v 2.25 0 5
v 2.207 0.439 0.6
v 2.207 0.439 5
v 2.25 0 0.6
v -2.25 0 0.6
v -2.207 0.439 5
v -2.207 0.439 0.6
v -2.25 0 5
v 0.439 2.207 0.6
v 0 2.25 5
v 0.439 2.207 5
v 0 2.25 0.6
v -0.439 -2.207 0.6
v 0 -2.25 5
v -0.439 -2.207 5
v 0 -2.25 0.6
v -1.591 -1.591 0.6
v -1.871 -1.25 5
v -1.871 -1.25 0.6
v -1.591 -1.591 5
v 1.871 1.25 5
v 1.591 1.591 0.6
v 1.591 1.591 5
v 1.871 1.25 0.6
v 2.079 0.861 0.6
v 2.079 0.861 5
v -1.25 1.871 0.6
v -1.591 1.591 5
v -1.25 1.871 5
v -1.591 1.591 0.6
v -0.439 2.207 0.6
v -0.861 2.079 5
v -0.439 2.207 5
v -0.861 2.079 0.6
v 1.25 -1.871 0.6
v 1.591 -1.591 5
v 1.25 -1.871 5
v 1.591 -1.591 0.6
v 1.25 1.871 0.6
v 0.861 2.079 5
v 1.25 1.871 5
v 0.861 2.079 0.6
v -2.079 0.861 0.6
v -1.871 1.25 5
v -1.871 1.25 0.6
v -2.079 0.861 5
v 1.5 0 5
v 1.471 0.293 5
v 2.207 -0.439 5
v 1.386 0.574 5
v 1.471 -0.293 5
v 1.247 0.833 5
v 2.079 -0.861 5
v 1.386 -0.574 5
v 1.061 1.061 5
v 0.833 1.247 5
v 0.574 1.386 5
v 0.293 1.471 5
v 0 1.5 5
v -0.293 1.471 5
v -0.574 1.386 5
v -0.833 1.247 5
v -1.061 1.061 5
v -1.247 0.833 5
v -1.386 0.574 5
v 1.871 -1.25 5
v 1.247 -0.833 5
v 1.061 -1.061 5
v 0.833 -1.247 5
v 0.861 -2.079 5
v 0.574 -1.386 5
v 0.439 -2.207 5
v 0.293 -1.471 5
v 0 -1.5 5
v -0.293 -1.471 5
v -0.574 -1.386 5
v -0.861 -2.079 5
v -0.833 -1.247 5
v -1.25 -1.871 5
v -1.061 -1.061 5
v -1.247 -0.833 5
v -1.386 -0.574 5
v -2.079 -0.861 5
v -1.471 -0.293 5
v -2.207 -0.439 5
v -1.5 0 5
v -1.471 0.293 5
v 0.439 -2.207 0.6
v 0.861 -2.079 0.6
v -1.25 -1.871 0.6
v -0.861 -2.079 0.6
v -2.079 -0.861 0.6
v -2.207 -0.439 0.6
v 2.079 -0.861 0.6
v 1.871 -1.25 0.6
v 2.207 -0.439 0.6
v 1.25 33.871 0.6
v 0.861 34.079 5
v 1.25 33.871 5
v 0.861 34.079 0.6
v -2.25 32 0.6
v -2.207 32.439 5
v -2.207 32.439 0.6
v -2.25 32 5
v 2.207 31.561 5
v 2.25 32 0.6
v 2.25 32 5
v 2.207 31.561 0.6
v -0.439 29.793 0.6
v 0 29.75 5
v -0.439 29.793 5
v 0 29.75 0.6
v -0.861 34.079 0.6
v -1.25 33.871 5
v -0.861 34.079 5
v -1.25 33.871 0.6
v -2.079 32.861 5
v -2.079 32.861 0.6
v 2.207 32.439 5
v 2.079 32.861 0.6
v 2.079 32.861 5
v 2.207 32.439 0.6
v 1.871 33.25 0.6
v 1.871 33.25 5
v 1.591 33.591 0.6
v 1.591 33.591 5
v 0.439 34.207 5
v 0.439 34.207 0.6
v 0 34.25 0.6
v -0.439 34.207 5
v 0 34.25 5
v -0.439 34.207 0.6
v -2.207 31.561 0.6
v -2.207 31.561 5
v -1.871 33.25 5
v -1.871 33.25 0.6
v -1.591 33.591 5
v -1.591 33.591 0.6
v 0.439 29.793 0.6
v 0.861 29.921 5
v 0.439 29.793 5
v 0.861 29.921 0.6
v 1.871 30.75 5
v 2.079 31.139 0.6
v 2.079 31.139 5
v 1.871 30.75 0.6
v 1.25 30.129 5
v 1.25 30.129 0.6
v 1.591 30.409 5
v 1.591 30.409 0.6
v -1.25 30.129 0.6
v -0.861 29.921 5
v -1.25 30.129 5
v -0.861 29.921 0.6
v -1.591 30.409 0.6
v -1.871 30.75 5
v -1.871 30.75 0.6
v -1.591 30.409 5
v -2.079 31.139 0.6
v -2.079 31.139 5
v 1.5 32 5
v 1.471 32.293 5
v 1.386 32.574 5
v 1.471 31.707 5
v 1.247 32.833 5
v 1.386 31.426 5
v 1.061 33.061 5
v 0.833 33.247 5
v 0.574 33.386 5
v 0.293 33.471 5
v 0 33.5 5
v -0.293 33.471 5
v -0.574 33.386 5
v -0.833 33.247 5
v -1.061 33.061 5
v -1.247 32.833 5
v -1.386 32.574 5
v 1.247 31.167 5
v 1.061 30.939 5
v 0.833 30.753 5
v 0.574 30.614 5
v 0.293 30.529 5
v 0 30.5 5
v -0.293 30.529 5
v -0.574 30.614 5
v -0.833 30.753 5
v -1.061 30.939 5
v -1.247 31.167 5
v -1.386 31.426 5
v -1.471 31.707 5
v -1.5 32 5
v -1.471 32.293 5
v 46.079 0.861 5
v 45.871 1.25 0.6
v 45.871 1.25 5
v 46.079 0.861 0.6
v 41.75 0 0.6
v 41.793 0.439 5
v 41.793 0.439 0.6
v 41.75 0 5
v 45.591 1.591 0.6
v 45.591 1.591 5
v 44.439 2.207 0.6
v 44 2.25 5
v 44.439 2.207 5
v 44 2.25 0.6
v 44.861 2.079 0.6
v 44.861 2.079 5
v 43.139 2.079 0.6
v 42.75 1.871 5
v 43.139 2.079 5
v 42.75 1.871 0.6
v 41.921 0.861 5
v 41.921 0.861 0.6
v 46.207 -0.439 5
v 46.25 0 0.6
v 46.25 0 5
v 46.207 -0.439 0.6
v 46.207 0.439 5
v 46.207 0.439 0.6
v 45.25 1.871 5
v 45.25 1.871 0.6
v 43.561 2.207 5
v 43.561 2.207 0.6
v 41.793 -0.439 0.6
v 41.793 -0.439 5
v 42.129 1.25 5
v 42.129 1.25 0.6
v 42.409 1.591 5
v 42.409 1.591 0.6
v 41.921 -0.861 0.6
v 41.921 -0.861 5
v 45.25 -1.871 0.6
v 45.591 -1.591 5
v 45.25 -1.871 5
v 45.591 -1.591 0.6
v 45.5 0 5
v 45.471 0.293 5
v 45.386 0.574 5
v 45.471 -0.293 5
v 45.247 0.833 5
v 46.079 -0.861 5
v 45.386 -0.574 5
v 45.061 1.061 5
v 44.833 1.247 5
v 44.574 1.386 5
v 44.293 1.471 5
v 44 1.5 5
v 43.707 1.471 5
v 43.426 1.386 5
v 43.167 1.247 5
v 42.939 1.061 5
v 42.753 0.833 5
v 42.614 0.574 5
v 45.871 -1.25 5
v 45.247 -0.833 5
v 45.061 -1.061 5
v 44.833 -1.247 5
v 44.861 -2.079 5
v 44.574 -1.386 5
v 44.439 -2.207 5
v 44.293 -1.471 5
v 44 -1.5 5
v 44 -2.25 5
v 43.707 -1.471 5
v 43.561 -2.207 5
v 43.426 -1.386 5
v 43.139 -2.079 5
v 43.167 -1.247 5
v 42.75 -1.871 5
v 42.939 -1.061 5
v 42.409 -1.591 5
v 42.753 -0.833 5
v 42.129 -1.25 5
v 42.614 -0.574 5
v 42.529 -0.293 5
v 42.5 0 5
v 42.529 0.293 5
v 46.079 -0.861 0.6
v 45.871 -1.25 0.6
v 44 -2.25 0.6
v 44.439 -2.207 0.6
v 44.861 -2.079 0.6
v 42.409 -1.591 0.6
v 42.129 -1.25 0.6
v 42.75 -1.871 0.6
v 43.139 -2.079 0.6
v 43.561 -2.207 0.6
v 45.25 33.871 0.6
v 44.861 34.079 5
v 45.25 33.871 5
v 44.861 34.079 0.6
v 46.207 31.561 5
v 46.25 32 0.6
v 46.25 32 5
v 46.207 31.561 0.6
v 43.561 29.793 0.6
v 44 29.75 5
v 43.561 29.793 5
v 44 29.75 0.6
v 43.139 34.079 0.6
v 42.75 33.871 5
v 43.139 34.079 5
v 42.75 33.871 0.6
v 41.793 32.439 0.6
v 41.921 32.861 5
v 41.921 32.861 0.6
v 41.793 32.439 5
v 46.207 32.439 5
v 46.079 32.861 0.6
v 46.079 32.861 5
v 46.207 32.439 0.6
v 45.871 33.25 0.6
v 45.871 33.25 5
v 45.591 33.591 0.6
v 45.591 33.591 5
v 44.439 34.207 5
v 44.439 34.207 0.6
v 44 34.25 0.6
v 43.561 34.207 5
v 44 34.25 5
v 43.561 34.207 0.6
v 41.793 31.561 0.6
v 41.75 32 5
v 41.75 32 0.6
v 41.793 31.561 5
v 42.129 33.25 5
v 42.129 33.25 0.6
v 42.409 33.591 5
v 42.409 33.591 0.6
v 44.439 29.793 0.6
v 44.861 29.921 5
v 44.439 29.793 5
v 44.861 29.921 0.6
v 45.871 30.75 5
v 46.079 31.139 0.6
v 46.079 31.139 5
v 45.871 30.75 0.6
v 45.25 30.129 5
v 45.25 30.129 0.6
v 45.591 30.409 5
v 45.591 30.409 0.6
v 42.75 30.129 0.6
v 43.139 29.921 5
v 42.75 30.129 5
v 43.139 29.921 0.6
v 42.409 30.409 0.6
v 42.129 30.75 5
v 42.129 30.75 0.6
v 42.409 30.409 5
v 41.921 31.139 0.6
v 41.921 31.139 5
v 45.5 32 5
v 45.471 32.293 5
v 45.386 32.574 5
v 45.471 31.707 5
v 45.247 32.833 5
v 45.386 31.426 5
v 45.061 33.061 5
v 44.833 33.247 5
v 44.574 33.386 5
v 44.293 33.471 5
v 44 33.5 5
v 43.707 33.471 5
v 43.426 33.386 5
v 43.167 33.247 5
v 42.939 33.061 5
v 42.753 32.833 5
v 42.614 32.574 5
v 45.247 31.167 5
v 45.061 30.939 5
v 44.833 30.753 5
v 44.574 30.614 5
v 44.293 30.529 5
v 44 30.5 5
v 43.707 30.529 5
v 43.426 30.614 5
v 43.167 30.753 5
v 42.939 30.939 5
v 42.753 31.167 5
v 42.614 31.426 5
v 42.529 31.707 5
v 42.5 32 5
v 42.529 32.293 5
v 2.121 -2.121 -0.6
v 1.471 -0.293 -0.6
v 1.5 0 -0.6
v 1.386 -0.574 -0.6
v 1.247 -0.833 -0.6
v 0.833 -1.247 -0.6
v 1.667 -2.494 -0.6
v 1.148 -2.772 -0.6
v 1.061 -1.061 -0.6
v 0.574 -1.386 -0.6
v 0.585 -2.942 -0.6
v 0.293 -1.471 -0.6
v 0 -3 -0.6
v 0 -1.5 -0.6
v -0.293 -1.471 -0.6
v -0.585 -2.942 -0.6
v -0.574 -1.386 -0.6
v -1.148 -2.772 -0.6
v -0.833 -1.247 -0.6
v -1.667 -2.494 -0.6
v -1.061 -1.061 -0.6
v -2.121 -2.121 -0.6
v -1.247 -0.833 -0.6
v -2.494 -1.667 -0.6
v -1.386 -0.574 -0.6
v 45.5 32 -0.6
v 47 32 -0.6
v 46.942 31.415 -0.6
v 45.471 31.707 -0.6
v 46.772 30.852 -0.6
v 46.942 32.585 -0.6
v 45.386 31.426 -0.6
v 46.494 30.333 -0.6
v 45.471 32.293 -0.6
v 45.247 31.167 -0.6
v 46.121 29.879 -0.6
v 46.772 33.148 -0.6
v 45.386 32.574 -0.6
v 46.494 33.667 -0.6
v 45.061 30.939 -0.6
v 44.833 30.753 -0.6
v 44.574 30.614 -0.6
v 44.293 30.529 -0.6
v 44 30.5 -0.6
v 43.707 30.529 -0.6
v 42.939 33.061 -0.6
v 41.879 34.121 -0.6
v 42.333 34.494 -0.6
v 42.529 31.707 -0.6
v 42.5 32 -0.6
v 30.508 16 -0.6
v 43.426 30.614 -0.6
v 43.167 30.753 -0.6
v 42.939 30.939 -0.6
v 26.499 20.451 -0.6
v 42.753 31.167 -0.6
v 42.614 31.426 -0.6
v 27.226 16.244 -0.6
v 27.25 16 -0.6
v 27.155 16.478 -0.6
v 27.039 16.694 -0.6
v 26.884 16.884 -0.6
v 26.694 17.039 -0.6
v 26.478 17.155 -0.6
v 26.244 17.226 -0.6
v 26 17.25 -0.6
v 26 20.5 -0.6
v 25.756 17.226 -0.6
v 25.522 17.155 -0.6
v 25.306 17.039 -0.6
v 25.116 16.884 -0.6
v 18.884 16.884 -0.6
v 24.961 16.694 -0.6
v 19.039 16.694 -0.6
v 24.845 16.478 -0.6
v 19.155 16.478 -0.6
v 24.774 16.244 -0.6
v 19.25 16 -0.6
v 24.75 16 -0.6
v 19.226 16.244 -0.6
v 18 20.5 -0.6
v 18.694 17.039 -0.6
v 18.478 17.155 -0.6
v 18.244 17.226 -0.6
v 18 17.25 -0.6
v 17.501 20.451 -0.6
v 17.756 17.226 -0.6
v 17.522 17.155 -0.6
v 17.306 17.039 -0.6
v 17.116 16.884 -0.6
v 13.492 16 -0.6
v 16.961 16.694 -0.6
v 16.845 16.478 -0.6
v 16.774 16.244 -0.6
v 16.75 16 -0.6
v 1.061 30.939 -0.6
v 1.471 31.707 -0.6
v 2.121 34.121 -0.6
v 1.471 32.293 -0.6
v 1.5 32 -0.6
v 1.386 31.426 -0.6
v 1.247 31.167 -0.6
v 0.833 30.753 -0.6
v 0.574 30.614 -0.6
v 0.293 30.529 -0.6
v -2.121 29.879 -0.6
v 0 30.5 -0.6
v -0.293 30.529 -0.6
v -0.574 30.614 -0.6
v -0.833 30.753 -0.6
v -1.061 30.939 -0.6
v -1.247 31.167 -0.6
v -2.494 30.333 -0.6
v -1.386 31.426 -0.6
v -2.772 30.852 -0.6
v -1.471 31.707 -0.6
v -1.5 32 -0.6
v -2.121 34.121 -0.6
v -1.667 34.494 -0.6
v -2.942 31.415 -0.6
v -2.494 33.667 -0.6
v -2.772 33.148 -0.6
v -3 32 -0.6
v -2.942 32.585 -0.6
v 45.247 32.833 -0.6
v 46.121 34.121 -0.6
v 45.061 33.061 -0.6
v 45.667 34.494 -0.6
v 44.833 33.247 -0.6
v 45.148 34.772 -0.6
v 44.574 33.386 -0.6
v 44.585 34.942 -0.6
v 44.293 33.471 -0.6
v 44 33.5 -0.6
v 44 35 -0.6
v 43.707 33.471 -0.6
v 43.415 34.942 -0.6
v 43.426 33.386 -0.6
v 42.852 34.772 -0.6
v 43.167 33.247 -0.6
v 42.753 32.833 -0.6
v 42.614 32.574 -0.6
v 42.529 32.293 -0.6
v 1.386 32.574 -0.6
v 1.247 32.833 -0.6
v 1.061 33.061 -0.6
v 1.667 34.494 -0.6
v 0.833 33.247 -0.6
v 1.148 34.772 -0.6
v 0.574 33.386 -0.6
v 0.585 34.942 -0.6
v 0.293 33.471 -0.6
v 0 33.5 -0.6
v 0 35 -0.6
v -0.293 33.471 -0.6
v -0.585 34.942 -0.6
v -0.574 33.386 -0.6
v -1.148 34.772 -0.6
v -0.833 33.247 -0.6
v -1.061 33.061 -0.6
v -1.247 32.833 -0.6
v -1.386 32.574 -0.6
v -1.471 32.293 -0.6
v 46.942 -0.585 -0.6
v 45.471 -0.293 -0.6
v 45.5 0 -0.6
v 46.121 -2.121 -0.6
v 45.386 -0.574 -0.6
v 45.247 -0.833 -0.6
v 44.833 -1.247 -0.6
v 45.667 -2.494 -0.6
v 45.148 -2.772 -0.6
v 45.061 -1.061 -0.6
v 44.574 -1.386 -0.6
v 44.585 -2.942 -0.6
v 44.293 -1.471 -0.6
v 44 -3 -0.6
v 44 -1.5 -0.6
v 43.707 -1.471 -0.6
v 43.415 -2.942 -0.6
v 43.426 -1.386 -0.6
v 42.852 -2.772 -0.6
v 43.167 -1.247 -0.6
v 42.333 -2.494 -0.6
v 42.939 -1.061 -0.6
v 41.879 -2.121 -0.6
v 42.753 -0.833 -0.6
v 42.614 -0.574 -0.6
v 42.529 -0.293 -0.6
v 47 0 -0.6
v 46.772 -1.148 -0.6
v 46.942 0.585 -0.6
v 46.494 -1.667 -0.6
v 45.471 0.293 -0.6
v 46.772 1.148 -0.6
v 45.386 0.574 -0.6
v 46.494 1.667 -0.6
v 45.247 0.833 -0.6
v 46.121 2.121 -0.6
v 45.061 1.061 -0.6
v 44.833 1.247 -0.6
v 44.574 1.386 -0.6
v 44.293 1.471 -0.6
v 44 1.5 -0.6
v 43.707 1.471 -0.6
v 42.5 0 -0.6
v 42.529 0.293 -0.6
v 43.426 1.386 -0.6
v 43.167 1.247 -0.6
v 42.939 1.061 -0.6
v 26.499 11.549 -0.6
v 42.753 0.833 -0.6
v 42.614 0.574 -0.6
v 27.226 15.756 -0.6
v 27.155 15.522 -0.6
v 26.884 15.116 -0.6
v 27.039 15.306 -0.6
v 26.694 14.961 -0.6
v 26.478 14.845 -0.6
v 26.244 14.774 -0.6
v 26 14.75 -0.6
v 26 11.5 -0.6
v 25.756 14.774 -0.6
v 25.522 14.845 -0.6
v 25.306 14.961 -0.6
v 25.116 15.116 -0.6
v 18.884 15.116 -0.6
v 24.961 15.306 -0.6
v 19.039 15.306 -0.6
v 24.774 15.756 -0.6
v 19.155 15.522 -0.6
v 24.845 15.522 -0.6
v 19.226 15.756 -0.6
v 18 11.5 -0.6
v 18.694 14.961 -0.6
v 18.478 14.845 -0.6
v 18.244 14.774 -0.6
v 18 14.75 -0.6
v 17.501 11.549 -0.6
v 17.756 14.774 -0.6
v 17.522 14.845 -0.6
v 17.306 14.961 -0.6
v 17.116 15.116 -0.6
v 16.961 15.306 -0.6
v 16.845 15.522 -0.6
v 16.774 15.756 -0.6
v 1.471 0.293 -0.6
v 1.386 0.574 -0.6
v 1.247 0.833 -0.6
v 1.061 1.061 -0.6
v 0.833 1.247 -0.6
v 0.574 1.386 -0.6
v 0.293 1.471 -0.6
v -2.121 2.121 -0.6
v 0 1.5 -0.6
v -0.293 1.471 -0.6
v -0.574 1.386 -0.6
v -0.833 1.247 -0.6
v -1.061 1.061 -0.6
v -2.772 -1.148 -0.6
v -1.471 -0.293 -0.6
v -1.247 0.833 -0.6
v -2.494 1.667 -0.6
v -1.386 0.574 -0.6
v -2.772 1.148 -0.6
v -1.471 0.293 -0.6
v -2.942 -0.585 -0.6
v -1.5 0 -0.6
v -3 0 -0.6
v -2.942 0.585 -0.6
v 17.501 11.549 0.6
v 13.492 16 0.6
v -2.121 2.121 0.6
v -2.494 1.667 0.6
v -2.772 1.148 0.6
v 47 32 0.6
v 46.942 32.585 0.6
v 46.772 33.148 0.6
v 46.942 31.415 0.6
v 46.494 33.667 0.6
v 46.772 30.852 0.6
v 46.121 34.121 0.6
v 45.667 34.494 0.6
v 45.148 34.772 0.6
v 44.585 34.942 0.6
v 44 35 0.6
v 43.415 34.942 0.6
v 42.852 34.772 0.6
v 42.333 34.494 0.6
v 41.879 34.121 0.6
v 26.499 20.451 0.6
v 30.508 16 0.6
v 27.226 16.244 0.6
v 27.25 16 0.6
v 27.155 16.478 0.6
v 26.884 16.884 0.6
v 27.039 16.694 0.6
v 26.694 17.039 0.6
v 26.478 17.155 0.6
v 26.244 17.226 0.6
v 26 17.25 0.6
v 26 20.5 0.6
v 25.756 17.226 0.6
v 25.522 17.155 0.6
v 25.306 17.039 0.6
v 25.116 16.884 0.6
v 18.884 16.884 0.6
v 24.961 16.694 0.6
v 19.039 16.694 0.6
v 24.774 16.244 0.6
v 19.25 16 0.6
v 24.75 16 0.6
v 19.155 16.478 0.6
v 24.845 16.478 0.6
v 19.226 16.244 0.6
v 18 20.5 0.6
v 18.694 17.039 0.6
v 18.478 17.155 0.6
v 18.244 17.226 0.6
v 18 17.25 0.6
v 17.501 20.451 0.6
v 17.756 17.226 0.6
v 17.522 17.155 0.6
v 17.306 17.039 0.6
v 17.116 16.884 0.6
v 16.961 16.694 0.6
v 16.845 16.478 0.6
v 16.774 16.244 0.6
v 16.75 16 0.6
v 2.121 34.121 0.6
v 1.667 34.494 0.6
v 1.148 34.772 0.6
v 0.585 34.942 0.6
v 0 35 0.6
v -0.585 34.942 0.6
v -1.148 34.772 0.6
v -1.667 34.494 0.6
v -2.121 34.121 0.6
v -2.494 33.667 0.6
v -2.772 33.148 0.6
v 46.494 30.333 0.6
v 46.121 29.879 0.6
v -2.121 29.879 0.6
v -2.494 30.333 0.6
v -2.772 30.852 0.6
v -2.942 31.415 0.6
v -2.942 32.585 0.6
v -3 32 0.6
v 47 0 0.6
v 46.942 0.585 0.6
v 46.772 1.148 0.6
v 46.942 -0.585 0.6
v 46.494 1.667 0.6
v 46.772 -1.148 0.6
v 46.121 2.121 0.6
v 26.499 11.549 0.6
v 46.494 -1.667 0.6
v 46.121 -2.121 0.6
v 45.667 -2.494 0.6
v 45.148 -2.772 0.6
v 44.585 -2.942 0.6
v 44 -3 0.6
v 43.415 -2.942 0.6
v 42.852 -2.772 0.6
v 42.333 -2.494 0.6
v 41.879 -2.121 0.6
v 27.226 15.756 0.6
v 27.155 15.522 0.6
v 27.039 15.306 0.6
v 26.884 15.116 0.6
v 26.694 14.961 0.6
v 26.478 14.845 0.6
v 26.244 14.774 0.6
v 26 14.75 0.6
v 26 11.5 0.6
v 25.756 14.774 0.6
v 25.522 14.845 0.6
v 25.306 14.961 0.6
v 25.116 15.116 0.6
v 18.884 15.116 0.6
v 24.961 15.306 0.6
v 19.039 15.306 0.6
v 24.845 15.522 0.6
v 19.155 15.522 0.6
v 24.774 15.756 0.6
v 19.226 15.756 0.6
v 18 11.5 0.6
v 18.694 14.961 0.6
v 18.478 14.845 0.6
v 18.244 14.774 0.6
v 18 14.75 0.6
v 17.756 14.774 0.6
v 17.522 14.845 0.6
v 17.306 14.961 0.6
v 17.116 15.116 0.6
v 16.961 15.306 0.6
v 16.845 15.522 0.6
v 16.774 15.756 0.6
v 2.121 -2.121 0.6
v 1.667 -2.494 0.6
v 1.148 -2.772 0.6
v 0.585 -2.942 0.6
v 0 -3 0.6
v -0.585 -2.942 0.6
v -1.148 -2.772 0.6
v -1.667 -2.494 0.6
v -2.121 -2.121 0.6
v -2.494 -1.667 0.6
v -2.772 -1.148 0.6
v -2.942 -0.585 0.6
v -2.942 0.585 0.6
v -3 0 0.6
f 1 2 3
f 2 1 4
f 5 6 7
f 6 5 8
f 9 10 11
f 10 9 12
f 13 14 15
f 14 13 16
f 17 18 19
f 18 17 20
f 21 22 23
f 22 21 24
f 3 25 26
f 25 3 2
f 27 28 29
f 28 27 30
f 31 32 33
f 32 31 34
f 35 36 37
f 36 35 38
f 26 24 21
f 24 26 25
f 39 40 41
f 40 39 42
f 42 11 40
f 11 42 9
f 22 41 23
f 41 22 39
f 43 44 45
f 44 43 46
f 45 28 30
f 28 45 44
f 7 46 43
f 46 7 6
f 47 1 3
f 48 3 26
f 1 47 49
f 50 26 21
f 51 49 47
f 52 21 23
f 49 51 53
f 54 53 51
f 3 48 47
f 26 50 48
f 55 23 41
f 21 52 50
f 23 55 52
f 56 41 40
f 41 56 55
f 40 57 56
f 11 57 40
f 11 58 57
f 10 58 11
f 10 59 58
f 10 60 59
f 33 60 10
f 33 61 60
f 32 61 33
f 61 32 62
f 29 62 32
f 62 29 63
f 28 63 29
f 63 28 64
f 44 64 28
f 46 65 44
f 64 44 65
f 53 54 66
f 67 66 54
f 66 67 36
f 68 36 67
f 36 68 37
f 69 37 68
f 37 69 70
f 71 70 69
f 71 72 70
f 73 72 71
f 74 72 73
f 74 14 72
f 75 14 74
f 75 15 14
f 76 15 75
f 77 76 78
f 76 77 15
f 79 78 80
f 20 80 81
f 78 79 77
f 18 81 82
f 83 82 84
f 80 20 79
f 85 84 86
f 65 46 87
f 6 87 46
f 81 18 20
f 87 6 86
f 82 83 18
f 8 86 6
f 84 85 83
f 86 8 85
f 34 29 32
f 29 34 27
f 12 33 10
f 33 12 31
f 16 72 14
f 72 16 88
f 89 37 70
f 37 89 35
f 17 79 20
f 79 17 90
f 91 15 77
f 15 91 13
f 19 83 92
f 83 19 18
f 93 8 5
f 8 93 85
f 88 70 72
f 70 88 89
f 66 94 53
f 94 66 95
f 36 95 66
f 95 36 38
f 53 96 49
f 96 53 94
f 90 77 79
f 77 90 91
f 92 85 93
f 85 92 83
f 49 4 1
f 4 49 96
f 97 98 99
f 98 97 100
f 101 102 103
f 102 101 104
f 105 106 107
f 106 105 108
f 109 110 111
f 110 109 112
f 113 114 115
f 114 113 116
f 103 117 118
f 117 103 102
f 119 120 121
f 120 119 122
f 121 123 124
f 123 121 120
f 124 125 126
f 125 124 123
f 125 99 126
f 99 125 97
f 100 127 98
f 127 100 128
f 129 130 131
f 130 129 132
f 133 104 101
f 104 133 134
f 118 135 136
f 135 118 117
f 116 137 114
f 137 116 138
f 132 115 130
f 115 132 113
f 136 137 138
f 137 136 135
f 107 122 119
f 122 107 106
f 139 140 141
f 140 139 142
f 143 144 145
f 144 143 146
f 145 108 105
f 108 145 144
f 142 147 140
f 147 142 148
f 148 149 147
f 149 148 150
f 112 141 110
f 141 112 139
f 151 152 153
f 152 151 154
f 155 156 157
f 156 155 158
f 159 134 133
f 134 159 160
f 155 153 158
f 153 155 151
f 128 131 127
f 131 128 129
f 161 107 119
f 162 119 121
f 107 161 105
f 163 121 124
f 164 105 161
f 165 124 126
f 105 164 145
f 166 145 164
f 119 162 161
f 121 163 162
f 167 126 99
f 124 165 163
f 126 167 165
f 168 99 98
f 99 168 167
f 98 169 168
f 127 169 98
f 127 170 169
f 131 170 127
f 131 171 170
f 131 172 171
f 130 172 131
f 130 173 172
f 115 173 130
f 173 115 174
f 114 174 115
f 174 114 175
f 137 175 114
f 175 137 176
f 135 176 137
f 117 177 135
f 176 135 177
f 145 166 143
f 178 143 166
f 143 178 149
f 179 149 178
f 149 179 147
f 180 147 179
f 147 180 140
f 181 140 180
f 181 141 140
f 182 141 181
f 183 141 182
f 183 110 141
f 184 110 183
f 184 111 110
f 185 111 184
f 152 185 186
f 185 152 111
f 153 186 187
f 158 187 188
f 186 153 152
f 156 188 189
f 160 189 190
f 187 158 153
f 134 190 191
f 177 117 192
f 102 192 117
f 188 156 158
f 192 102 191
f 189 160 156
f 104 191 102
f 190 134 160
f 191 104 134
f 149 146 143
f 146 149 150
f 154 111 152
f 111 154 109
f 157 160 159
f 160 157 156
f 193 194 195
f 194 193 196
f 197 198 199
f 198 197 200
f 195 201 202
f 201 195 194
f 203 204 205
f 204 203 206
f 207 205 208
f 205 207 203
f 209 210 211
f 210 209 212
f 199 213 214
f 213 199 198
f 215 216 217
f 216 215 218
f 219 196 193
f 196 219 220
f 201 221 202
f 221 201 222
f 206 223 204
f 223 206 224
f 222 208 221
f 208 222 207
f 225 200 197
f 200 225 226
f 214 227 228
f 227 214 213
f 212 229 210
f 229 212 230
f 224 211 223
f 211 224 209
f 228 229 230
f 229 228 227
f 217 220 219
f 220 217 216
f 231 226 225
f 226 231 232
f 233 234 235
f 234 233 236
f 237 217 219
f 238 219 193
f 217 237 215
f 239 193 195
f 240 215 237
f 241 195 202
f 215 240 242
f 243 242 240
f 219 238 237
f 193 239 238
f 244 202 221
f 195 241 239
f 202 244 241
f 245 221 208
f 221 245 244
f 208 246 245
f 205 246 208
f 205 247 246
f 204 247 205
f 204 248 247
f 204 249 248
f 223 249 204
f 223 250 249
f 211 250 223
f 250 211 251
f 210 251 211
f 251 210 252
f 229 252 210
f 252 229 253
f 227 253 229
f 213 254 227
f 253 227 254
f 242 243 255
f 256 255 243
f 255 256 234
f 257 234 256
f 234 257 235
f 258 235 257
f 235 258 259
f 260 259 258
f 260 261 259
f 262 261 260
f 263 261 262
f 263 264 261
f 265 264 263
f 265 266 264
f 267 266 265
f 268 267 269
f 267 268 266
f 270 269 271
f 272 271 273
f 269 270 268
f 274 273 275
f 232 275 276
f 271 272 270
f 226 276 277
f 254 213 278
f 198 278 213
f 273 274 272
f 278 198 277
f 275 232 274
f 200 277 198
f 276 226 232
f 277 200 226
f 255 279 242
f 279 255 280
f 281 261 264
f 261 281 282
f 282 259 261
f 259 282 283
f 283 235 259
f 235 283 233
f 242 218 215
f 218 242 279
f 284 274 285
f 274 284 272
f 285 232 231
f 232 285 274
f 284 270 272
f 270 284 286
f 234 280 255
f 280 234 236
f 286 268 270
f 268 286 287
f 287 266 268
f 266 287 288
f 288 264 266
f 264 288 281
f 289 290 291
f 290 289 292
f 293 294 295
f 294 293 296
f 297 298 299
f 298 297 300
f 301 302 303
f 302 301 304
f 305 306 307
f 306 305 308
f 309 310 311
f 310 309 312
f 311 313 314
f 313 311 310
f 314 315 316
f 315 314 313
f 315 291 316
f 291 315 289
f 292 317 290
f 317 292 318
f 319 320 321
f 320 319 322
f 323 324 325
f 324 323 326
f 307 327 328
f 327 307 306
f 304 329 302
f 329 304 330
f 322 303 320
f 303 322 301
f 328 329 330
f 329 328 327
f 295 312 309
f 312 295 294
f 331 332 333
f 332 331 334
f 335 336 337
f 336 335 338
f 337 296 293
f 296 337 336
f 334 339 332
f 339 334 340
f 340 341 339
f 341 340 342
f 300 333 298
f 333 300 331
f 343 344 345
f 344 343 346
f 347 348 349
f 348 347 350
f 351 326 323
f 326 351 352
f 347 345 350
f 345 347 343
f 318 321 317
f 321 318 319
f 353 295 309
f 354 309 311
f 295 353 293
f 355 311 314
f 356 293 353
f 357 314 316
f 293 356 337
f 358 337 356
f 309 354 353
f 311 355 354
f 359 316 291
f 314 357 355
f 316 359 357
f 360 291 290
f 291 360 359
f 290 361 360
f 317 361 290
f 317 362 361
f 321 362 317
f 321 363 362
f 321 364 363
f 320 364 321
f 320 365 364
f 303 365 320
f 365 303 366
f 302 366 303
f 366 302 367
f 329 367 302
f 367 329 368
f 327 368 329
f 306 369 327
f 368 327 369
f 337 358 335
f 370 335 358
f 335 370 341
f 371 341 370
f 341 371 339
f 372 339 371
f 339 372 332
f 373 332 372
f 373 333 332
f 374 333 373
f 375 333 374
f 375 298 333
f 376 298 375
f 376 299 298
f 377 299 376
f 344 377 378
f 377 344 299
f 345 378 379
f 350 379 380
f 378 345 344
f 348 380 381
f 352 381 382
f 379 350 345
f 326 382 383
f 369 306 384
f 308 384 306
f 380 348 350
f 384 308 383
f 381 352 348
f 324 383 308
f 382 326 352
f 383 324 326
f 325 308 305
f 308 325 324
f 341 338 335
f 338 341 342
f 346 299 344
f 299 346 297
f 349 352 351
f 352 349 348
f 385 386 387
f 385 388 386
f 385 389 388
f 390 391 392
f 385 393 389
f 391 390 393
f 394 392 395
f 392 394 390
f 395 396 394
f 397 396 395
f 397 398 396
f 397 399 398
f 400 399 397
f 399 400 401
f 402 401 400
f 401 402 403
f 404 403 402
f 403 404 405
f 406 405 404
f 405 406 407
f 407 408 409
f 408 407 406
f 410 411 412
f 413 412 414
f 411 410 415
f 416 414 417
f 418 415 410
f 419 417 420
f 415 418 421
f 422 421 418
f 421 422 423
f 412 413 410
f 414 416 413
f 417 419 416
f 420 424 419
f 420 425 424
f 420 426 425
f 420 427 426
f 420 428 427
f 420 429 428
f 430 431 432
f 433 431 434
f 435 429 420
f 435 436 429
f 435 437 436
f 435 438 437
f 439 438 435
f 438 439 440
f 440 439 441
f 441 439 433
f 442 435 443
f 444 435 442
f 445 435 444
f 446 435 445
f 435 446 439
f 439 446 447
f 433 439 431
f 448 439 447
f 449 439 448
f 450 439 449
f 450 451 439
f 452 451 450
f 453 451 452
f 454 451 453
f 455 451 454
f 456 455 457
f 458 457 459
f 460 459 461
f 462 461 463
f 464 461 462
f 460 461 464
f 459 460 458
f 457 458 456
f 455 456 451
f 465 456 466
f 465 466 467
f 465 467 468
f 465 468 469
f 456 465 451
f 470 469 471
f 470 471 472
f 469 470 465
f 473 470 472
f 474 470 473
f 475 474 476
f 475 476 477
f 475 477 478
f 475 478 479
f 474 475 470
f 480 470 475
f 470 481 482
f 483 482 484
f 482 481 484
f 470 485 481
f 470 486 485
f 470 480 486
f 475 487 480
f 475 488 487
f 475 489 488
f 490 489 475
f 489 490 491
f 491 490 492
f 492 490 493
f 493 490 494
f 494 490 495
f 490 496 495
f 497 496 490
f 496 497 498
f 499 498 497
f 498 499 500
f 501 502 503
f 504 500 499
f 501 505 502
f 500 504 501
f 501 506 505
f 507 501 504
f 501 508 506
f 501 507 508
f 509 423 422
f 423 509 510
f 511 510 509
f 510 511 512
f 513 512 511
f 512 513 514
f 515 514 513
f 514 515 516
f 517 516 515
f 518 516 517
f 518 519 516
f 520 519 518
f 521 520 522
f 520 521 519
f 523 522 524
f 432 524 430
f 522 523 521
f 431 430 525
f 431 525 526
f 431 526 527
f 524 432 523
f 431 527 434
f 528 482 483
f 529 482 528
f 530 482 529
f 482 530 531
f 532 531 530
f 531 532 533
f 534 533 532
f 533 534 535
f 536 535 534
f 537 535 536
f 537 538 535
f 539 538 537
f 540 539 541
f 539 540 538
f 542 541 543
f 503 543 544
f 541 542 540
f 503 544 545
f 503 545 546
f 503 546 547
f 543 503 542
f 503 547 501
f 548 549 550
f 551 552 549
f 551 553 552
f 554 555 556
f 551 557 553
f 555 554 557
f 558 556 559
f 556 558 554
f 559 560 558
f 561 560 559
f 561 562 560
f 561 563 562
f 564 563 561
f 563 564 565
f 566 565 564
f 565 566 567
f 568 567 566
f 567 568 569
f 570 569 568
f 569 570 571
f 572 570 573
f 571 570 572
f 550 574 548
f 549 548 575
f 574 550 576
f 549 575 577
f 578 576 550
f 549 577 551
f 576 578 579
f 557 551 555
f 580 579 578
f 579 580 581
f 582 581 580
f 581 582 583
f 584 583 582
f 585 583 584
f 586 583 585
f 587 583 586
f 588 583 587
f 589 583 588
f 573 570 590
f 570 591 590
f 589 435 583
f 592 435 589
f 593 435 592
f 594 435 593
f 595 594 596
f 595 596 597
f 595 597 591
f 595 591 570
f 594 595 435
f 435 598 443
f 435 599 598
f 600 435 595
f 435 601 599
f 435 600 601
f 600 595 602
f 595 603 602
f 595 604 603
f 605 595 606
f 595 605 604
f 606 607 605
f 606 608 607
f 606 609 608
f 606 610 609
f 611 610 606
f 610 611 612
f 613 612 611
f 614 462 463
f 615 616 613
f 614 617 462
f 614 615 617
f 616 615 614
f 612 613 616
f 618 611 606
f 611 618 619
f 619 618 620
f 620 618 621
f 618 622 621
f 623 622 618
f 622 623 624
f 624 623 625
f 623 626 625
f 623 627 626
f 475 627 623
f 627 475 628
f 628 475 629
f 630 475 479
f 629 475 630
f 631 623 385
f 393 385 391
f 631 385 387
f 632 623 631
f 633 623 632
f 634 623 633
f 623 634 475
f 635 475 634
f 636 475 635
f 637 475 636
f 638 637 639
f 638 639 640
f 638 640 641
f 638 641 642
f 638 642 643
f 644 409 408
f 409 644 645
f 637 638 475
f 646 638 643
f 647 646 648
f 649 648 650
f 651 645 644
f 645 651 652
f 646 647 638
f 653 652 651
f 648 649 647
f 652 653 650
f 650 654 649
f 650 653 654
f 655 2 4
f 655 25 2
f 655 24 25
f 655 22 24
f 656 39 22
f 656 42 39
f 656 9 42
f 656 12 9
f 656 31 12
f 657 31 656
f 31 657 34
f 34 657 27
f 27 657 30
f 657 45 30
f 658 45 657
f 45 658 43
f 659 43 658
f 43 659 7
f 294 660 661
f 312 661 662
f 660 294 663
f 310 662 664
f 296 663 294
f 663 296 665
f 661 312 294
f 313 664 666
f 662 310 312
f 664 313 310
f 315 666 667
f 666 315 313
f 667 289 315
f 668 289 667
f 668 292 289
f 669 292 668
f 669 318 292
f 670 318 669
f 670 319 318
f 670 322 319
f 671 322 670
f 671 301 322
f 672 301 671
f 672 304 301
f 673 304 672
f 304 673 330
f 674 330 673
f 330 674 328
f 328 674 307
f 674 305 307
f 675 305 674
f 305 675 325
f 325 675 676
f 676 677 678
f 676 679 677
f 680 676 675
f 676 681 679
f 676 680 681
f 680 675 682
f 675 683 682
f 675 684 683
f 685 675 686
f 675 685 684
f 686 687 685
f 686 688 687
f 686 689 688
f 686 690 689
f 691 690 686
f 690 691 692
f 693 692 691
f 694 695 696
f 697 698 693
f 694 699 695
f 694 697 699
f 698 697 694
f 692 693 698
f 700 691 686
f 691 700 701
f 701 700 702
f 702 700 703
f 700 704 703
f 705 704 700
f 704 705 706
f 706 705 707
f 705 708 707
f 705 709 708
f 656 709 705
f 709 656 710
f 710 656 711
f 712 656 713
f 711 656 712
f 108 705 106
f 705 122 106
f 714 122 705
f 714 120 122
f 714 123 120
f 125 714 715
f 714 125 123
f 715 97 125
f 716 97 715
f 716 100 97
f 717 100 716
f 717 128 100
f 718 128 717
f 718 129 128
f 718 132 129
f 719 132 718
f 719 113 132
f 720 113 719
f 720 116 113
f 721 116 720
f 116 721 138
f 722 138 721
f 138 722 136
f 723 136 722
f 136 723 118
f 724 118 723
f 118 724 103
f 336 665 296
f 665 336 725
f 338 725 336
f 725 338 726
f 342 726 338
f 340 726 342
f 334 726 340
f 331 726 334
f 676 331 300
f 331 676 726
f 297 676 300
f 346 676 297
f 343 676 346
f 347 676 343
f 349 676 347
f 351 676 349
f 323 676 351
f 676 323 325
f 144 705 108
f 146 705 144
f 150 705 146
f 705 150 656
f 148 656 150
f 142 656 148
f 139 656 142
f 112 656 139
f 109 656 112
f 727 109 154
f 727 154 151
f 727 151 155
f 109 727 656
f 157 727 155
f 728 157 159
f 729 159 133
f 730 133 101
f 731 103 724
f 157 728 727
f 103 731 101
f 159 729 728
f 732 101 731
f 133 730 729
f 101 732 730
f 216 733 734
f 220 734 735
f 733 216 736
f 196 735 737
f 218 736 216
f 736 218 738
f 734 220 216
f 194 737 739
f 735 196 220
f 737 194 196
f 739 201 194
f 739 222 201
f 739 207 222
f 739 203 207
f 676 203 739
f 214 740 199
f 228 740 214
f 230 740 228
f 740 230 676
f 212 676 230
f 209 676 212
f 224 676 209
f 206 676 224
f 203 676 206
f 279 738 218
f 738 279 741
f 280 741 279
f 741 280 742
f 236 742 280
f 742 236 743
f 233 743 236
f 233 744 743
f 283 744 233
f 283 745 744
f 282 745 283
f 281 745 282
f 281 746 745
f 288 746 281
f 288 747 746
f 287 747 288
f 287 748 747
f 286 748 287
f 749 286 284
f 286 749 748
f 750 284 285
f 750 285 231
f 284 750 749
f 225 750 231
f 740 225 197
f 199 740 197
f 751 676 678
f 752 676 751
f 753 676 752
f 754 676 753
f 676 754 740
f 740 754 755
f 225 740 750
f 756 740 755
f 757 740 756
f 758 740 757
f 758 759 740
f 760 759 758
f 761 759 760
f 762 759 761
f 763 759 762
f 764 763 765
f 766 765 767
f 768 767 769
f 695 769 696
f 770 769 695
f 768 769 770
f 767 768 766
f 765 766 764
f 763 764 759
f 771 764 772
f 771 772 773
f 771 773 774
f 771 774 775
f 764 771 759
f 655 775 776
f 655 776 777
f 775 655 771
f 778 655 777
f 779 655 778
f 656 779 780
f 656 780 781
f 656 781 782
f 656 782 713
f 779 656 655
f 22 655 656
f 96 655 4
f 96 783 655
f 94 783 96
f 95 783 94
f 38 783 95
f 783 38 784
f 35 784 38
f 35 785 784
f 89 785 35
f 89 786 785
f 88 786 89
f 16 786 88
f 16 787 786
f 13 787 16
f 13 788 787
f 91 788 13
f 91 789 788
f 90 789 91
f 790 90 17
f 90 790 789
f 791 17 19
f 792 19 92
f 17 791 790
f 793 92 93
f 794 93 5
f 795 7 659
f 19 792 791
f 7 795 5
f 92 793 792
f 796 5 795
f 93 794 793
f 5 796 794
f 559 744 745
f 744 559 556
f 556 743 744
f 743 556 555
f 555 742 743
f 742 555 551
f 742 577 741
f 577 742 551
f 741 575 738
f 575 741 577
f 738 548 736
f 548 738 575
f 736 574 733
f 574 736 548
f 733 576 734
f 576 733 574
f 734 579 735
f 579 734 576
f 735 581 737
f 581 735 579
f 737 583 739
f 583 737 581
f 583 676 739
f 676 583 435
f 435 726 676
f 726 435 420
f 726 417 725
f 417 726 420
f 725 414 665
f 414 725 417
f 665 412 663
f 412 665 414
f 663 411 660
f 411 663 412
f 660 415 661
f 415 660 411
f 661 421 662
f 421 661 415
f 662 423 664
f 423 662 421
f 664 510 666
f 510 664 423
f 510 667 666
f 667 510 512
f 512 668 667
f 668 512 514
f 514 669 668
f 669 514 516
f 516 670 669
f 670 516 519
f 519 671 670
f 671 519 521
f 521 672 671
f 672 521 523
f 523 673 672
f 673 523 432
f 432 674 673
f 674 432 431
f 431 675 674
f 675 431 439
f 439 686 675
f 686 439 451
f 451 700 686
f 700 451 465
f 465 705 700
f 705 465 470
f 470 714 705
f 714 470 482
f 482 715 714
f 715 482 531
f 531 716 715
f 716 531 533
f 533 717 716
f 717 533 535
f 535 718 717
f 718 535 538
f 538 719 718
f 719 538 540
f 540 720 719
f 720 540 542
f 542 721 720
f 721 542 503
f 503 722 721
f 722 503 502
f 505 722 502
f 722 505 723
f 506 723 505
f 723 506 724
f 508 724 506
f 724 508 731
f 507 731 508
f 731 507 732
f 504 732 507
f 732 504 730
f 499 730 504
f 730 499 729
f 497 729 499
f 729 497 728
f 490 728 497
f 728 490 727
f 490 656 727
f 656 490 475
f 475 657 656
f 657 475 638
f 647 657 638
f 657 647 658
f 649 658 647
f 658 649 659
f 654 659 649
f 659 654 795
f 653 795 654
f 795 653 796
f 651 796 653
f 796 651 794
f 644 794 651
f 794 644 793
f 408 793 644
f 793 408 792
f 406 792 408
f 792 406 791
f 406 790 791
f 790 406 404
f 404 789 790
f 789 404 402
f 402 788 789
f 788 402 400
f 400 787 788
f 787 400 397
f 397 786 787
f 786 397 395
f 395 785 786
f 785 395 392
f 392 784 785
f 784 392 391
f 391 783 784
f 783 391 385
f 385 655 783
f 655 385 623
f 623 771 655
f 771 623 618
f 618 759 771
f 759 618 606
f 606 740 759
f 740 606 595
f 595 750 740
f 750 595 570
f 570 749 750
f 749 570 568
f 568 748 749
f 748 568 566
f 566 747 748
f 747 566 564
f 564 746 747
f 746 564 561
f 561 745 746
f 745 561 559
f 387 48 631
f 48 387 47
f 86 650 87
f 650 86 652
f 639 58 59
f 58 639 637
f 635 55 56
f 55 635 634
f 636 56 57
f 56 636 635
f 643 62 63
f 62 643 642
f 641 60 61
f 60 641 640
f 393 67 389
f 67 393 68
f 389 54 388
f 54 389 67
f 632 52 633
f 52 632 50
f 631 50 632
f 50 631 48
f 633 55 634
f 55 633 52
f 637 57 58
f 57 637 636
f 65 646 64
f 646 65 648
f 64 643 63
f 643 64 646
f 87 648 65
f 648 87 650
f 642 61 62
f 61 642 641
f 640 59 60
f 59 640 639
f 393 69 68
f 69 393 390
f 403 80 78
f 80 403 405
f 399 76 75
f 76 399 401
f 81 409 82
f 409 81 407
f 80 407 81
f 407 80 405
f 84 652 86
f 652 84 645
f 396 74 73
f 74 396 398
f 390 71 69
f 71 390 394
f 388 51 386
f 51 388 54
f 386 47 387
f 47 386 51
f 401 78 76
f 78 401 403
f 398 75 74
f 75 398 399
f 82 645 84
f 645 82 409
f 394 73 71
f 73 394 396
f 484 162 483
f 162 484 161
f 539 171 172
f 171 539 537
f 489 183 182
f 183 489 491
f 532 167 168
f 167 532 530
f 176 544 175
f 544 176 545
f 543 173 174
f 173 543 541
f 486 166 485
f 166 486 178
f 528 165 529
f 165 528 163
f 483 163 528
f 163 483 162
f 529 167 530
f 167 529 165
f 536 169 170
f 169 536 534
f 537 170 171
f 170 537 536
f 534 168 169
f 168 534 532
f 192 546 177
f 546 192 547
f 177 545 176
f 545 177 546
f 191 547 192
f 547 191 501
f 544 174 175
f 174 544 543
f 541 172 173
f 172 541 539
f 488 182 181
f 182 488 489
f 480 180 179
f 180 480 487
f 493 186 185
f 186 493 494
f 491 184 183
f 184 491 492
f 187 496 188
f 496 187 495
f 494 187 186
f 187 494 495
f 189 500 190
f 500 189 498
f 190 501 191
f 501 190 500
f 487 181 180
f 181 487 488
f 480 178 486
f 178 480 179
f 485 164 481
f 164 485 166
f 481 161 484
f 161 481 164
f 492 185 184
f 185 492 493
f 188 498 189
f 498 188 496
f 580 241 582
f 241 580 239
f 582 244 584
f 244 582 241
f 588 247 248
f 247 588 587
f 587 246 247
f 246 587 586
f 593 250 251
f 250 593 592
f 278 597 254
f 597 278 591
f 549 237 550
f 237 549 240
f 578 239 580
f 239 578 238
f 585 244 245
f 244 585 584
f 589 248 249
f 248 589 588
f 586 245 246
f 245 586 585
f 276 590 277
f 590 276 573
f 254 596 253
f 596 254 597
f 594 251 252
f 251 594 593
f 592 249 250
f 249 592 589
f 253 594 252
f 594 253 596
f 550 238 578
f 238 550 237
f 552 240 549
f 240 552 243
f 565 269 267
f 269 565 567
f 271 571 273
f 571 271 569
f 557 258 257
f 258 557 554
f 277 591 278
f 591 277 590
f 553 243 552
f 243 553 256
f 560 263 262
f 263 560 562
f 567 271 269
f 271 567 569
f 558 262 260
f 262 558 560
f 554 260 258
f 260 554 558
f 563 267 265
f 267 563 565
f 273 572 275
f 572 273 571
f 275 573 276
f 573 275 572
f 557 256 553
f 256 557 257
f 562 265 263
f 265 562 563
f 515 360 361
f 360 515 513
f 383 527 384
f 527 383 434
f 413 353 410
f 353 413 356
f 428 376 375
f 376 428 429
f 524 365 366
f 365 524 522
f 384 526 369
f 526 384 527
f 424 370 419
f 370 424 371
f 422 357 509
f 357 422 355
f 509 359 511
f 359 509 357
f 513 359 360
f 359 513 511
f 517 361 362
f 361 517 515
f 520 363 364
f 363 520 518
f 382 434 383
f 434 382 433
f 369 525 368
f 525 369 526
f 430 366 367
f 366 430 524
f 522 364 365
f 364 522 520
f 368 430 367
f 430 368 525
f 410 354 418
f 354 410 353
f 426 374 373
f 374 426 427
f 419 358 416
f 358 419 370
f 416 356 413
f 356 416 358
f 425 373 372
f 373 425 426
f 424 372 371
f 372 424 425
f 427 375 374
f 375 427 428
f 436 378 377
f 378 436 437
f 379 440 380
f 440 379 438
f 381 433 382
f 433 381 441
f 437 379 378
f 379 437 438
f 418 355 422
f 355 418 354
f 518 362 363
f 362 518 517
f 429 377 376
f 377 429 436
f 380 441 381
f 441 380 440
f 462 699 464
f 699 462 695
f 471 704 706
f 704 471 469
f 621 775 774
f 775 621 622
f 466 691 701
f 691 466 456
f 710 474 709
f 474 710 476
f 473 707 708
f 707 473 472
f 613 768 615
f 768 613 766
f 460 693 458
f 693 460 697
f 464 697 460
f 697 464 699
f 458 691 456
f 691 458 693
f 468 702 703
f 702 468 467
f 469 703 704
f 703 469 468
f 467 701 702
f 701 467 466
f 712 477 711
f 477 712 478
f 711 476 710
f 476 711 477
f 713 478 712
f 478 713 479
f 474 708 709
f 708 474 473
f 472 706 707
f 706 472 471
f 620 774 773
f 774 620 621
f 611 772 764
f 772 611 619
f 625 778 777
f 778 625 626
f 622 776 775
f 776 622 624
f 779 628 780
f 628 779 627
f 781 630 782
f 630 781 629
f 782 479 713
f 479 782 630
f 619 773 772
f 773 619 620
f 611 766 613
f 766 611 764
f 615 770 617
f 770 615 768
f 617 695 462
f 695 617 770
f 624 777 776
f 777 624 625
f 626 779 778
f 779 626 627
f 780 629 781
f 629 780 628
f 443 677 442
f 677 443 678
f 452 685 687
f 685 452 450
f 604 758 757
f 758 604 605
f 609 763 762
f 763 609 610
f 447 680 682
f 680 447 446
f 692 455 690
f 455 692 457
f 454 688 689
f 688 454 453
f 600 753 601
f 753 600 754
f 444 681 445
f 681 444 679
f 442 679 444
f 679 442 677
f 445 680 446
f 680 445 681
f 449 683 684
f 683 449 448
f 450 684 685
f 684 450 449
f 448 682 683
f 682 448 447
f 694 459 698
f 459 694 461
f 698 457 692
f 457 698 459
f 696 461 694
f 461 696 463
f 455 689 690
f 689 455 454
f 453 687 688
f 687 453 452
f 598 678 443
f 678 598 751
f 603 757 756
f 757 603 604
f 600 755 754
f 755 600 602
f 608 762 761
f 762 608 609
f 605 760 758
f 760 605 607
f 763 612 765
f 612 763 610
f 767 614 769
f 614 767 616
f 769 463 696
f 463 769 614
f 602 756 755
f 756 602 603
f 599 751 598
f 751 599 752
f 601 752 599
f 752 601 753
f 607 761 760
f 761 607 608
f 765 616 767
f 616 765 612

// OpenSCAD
$fn = 32;

holes = [
  [0, 0],
  [0, 32],
  [44, 0],
  [44, 32]
];

module place_things(pos_list) {
   for (t = pos_list) {  
     translate(t)
     //children(0);
     children([0:1:$children-1]);
   }
 }


module relay_support(db = 6, cx1 = 44/2 - 4, cx2 = 44/2 + 4, cy = 32/2) {

  difference() {
    union() {
      place_things(holes)
      cylinder(d = 4.5, h = 5);
      
      linear_extrude(height = 1.2, center = true, convexity = 10, twist = 0) {
        hull() {
          translate(holes[0])
          circle(d = db); 
          
          translate([cx1, cy, 0])
          circle(d = db); 
        }

        hull() {
          translate(holes[1])
          circle(d = db); 
          
          translate([cx1, cy, 0])
          circle(d = db); 
        }

        hull() {
          translate(holes[3])
          circle(d = db); 
          
          translate([cx2, cy, 0])
          circle(d = db); 
        }
        
        hull() {
          translate(holes[2])
          circle(d = db); 
          
          translate([cx2, cy, 0])
          circle(d = db); 
        }

        hull() {
          translate([cx1, cy, 0])
          circle(d = db + 3); 
          
          translate([cx2, cy, 0])
          circle(d = db + 3); 
        }
      }
    }
    place_things(holes)
    cylinder(d = 3, h = 20, center = true);    
    
    translate([cx1, cy, 0])
    cylinder(d = 2.5, h = 20, center = true);    

    translate([cx2, cy, 0])
    cylinder(d = 2.5, h = 20, center = true);    

  }
}


relay_support();
